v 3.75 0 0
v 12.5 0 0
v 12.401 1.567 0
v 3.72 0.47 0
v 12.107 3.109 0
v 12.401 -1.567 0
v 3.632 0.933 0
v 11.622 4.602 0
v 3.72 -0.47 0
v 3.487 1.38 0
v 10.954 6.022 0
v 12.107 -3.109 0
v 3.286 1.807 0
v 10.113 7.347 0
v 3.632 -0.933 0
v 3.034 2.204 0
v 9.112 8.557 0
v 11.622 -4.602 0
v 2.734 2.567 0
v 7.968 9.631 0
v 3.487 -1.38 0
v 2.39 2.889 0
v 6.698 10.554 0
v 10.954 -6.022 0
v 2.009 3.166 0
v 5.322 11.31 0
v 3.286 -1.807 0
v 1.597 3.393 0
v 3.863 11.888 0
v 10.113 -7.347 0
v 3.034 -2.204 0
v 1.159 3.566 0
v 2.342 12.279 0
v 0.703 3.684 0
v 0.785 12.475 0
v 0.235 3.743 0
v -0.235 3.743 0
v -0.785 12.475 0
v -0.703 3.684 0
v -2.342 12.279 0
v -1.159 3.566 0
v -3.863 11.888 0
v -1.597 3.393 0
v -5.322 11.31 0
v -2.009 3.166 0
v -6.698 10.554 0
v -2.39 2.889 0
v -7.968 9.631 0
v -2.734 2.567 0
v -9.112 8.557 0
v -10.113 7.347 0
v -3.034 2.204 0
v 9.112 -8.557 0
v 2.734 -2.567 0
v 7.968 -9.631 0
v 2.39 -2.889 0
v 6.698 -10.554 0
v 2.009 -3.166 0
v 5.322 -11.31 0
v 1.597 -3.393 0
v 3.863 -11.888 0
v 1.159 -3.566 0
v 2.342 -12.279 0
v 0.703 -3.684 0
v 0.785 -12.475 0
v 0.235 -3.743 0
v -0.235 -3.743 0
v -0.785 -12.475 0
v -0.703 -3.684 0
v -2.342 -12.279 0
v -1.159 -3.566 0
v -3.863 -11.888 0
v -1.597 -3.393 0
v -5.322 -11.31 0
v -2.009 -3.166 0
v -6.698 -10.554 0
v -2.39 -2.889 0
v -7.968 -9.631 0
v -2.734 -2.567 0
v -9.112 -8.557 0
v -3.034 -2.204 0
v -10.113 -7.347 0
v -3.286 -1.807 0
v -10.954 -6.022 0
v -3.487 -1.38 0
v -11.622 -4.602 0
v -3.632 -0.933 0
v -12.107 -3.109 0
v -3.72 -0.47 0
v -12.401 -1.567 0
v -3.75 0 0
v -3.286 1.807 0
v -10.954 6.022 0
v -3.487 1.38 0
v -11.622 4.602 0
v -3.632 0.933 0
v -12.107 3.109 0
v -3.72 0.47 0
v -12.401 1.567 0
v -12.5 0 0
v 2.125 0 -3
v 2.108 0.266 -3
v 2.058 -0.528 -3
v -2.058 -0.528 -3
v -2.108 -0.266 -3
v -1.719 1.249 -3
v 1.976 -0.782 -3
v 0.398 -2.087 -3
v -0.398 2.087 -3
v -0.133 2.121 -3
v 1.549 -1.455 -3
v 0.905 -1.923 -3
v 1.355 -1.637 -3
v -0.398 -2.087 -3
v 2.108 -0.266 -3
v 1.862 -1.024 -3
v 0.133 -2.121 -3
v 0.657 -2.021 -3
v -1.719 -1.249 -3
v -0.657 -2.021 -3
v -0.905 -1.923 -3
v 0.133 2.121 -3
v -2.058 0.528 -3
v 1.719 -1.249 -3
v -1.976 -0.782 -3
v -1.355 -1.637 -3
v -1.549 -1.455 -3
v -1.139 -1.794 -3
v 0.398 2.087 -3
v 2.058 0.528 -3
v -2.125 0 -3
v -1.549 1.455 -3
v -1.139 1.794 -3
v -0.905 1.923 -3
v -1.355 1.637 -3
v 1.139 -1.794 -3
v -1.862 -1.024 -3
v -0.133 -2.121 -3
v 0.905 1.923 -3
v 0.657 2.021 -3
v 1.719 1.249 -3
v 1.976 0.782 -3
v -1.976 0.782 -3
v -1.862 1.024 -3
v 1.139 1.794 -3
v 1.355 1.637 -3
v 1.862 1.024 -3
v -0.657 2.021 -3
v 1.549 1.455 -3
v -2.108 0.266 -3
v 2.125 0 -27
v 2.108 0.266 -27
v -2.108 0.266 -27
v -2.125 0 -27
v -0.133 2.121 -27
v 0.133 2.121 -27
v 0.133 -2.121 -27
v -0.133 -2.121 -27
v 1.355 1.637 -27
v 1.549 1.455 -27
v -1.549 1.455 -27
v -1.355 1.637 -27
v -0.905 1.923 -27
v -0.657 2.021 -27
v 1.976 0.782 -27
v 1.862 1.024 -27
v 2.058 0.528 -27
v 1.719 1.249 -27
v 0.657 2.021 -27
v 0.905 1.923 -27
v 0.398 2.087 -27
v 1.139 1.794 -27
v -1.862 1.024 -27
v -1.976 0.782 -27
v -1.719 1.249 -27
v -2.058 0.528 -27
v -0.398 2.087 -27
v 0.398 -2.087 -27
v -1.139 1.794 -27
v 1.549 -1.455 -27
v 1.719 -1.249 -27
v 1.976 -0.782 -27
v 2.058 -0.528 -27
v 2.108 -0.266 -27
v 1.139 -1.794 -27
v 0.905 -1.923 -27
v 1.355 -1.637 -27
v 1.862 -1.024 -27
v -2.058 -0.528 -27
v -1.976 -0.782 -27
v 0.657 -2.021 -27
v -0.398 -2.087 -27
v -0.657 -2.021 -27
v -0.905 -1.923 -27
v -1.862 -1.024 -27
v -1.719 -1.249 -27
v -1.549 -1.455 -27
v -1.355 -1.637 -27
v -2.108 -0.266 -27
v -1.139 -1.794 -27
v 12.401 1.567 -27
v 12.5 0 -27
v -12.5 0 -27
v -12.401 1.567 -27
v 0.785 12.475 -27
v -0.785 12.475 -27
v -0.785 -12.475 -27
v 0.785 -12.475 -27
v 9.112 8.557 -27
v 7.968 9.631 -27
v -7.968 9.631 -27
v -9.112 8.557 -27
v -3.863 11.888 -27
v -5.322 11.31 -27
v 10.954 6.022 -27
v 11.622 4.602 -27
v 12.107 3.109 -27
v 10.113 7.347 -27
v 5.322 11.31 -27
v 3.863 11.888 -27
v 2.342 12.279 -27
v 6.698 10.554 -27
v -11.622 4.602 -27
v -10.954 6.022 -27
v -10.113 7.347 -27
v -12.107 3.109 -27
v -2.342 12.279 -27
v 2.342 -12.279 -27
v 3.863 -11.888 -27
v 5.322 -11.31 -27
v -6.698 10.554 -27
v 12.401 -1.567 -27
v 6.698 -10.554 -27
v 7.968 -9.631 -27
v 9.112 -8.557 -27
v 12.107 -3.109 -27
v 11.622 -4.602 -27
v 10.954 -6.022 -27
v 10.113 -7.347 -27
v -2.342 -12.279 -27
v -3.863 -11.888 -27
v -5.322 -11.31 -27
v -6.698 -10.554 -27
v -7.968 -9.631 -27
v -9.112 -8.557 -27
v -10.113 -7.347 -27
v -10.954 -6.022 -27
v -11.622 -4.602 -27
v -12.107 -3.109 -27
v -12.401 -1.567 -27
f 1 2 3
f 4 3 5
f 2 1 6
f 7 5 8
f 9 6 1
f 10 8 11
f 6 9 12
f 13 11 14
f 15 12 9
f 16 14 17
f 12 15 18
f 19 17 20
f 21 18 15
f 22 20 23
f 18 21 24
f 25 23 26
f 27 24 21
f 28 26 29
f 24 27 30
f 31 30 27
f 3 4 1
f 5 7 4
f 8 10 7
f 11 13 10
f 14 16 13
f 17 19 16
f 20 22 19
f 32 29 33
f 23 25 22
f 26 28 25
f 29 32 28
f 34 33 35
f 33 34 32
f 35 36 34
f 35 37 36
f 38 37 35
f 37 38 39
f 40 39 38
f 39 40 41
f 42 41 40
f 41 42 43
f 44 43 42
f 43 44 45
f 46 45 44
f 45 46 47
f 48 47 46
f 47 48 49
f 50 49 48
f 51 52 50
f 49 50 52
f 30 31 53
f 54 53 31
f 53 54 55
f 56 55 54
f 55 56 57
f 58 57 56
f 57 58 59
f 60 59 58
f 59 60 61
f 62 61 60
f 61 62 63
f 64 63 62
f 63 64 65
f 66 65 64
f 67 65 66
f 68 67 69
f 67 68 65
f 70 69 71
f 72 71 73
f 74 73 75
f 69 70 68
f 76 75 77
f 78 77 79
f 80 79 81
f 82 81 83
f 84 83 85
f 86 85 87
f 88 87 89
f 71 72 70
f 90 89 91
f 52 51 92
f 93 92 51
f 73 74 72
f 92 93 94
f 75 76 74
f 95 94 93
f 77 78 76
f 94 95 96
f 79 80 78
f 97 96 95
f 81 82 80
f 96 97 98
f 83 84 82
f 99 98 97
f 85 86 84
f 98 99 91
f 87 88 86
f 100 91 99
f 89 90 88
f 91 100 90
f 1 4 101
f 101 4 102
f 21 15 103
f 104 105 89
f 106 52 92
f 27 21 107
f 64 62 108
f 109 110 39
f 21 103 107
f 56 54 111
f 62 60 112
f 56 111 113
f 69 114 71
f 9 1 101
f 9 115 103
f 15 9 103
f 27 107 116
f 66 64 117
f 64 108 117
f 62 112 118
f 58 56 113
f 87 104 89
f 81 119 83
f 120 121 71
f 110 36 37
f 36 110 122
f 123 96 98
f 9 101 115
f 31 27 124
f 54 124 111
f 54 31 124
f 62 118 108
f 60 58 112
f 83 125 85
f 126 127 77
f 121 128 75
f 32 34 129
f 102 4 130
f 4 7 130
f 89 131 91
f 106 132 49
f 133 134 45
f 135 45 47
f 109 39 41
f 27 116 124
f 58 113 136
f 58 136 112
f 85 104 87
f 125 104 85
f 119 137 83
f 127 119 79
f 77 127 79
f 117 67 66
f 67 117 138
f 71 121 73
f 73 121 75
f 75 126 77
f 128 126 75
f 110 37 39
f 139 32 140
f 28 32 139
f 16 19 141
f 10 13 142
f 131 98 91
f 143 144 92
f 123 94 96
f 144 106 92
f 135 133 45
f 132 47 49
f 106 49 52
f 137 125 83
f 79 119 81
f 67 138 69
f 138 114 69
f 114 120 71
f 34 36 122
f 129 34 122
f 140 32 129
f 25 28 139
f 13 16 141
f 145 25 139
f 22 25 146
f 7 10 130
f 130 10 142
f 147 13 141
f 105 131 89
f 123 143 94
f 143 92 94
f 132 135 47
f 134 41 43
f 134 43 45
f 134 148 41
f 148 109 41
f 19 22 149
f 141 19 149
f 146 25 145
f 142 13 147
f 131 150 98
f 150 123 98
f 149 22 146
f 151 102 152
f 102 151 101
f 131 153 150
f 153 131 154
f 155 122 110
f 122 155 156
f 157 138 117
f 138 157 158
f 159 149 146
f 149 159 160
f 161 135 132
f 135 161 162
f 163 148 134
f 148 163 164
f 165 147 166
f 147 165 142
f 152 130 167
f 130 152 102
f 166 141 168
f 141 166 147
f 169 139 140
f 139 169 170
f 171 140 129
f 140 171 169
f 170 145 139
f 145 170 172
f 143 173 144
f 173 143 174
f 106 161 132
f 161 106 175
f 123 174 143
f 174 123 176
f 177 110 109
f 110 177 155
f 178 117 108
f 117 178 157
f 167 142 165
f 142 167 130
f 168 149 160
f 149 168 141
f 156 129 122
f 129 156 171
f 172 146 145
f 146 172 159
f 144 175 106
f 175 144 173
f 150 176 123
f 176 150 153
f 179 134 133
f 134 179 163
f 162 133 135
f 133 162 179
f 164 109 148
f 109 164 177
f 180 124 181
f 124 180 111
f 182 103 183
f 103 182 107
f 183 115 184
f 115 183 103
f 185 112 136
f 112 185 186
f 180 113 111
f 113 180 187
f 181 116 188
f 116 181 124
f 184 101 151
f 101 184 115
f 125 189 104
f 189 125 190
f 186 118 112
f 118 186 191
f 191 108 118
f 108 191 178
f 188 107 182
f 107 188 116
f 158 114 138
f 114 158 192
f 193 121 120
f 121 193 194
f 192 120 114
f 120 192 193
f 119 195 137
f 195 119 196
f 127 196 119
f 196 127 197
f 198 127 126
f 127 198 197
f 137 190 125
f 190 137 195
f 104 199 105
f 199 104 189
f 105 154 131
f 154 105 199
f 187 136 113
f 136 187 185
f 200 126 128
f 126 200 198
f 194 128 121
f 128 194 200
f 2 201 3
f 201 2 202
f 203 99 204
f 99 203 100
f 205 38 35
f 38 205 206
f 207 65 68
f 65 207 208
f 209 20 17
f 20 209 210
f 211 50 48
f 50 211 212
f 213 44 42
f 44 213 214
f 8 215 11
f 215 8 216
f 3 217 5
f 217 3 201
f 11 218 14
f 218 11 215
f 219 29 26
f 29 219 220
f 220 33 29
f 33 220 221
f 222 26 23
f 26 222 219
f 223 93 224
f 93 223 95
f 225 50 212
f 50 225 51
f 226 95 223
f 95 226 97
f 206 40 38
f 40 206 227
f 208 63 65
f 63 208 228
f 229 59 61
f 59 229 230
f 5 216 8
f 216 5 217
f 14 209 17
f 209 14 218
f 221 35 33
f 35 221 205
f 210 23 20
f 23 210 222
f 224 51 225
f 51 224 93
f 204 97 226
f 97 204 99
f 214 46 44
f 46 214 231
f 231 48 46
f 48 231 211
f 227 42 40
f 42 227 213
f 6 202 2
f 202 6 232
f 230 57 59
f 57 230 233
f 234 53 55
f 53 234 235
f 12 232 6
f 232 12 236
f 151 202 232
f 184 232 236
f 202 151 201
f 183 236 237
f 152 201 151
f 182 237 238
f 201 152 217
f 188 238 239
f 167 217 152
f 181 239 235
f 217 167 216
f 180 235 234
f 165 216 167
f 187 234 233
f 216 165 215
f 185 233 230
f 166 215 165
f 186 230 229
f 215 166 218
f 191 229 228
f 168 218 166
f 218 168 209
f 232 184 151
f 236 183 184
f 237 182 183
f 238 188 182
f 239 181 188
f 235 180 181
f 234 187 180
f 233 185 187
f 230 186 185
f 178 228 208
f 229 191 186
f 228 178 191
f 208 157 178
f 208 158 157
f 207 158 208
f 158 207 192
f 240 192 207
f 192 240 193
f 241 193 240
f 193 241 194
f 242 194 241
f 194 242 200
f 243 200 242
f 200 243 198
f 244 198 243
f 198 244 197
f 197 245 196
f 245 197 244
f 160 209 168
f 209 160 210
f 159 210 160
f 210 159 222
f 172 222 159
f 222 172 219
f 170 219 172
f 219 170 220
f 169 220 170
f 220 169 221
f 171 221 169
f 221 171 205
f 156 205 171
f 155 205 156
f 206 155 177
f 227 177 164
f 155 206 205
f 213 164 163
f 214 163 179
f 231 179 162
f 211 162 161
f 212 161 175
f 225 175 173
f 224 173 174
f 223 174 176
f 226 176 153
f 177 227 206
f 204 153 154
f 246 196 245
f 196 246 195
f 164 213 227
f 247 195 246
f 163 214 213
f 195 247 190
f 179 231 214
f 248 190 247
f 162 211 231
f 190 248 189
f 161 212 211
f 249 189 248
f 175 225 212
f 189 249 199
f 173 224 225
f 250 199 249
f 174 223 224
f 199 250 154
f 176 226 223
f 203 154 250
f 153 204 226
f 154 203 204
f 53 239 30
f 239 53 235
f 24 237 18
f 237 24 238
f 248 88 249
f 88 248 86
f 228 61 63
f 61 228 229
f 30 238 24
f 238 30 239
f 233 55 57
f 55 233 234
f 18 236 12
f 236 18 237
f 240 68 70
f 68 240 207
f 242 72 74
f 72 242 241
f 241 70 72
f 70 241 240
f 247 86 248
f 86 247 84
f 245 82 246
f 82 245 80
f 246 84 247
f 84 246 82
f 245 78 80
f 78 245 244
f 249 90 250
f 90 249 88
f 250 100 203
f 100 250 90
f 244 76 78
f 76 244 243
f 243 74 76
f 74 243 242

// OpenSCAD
$fn = 50;

difference() {
	union() {
		translate(v = [0, 0, -27.0]) {
			cylinder(h = 27, r = 12.5);
		}
	}
	union() {
		translate(v = [0, 0, 0]) {
			rotate(a = [0, 0, 0]) {
				difference() {
					union() {
						translate(v = [0, 0, -30.0]) {
							cylinder(h = 30, r = 2.0);
						}
						translate(v = [0, 0, -3]) {
							cylinder(h = 3, r1 = 2.125, r2 = 3.75);
						}
						translate(v = [0, 0, -30.0]) {
							cylinder(h = 30, r = 2.125);
						}
						translate(v = [0, 0, -30.0]) {
							cylinder(h = 30, r = 2.0);
						}
					}
					union();
				}
			}
		}
	}
}
